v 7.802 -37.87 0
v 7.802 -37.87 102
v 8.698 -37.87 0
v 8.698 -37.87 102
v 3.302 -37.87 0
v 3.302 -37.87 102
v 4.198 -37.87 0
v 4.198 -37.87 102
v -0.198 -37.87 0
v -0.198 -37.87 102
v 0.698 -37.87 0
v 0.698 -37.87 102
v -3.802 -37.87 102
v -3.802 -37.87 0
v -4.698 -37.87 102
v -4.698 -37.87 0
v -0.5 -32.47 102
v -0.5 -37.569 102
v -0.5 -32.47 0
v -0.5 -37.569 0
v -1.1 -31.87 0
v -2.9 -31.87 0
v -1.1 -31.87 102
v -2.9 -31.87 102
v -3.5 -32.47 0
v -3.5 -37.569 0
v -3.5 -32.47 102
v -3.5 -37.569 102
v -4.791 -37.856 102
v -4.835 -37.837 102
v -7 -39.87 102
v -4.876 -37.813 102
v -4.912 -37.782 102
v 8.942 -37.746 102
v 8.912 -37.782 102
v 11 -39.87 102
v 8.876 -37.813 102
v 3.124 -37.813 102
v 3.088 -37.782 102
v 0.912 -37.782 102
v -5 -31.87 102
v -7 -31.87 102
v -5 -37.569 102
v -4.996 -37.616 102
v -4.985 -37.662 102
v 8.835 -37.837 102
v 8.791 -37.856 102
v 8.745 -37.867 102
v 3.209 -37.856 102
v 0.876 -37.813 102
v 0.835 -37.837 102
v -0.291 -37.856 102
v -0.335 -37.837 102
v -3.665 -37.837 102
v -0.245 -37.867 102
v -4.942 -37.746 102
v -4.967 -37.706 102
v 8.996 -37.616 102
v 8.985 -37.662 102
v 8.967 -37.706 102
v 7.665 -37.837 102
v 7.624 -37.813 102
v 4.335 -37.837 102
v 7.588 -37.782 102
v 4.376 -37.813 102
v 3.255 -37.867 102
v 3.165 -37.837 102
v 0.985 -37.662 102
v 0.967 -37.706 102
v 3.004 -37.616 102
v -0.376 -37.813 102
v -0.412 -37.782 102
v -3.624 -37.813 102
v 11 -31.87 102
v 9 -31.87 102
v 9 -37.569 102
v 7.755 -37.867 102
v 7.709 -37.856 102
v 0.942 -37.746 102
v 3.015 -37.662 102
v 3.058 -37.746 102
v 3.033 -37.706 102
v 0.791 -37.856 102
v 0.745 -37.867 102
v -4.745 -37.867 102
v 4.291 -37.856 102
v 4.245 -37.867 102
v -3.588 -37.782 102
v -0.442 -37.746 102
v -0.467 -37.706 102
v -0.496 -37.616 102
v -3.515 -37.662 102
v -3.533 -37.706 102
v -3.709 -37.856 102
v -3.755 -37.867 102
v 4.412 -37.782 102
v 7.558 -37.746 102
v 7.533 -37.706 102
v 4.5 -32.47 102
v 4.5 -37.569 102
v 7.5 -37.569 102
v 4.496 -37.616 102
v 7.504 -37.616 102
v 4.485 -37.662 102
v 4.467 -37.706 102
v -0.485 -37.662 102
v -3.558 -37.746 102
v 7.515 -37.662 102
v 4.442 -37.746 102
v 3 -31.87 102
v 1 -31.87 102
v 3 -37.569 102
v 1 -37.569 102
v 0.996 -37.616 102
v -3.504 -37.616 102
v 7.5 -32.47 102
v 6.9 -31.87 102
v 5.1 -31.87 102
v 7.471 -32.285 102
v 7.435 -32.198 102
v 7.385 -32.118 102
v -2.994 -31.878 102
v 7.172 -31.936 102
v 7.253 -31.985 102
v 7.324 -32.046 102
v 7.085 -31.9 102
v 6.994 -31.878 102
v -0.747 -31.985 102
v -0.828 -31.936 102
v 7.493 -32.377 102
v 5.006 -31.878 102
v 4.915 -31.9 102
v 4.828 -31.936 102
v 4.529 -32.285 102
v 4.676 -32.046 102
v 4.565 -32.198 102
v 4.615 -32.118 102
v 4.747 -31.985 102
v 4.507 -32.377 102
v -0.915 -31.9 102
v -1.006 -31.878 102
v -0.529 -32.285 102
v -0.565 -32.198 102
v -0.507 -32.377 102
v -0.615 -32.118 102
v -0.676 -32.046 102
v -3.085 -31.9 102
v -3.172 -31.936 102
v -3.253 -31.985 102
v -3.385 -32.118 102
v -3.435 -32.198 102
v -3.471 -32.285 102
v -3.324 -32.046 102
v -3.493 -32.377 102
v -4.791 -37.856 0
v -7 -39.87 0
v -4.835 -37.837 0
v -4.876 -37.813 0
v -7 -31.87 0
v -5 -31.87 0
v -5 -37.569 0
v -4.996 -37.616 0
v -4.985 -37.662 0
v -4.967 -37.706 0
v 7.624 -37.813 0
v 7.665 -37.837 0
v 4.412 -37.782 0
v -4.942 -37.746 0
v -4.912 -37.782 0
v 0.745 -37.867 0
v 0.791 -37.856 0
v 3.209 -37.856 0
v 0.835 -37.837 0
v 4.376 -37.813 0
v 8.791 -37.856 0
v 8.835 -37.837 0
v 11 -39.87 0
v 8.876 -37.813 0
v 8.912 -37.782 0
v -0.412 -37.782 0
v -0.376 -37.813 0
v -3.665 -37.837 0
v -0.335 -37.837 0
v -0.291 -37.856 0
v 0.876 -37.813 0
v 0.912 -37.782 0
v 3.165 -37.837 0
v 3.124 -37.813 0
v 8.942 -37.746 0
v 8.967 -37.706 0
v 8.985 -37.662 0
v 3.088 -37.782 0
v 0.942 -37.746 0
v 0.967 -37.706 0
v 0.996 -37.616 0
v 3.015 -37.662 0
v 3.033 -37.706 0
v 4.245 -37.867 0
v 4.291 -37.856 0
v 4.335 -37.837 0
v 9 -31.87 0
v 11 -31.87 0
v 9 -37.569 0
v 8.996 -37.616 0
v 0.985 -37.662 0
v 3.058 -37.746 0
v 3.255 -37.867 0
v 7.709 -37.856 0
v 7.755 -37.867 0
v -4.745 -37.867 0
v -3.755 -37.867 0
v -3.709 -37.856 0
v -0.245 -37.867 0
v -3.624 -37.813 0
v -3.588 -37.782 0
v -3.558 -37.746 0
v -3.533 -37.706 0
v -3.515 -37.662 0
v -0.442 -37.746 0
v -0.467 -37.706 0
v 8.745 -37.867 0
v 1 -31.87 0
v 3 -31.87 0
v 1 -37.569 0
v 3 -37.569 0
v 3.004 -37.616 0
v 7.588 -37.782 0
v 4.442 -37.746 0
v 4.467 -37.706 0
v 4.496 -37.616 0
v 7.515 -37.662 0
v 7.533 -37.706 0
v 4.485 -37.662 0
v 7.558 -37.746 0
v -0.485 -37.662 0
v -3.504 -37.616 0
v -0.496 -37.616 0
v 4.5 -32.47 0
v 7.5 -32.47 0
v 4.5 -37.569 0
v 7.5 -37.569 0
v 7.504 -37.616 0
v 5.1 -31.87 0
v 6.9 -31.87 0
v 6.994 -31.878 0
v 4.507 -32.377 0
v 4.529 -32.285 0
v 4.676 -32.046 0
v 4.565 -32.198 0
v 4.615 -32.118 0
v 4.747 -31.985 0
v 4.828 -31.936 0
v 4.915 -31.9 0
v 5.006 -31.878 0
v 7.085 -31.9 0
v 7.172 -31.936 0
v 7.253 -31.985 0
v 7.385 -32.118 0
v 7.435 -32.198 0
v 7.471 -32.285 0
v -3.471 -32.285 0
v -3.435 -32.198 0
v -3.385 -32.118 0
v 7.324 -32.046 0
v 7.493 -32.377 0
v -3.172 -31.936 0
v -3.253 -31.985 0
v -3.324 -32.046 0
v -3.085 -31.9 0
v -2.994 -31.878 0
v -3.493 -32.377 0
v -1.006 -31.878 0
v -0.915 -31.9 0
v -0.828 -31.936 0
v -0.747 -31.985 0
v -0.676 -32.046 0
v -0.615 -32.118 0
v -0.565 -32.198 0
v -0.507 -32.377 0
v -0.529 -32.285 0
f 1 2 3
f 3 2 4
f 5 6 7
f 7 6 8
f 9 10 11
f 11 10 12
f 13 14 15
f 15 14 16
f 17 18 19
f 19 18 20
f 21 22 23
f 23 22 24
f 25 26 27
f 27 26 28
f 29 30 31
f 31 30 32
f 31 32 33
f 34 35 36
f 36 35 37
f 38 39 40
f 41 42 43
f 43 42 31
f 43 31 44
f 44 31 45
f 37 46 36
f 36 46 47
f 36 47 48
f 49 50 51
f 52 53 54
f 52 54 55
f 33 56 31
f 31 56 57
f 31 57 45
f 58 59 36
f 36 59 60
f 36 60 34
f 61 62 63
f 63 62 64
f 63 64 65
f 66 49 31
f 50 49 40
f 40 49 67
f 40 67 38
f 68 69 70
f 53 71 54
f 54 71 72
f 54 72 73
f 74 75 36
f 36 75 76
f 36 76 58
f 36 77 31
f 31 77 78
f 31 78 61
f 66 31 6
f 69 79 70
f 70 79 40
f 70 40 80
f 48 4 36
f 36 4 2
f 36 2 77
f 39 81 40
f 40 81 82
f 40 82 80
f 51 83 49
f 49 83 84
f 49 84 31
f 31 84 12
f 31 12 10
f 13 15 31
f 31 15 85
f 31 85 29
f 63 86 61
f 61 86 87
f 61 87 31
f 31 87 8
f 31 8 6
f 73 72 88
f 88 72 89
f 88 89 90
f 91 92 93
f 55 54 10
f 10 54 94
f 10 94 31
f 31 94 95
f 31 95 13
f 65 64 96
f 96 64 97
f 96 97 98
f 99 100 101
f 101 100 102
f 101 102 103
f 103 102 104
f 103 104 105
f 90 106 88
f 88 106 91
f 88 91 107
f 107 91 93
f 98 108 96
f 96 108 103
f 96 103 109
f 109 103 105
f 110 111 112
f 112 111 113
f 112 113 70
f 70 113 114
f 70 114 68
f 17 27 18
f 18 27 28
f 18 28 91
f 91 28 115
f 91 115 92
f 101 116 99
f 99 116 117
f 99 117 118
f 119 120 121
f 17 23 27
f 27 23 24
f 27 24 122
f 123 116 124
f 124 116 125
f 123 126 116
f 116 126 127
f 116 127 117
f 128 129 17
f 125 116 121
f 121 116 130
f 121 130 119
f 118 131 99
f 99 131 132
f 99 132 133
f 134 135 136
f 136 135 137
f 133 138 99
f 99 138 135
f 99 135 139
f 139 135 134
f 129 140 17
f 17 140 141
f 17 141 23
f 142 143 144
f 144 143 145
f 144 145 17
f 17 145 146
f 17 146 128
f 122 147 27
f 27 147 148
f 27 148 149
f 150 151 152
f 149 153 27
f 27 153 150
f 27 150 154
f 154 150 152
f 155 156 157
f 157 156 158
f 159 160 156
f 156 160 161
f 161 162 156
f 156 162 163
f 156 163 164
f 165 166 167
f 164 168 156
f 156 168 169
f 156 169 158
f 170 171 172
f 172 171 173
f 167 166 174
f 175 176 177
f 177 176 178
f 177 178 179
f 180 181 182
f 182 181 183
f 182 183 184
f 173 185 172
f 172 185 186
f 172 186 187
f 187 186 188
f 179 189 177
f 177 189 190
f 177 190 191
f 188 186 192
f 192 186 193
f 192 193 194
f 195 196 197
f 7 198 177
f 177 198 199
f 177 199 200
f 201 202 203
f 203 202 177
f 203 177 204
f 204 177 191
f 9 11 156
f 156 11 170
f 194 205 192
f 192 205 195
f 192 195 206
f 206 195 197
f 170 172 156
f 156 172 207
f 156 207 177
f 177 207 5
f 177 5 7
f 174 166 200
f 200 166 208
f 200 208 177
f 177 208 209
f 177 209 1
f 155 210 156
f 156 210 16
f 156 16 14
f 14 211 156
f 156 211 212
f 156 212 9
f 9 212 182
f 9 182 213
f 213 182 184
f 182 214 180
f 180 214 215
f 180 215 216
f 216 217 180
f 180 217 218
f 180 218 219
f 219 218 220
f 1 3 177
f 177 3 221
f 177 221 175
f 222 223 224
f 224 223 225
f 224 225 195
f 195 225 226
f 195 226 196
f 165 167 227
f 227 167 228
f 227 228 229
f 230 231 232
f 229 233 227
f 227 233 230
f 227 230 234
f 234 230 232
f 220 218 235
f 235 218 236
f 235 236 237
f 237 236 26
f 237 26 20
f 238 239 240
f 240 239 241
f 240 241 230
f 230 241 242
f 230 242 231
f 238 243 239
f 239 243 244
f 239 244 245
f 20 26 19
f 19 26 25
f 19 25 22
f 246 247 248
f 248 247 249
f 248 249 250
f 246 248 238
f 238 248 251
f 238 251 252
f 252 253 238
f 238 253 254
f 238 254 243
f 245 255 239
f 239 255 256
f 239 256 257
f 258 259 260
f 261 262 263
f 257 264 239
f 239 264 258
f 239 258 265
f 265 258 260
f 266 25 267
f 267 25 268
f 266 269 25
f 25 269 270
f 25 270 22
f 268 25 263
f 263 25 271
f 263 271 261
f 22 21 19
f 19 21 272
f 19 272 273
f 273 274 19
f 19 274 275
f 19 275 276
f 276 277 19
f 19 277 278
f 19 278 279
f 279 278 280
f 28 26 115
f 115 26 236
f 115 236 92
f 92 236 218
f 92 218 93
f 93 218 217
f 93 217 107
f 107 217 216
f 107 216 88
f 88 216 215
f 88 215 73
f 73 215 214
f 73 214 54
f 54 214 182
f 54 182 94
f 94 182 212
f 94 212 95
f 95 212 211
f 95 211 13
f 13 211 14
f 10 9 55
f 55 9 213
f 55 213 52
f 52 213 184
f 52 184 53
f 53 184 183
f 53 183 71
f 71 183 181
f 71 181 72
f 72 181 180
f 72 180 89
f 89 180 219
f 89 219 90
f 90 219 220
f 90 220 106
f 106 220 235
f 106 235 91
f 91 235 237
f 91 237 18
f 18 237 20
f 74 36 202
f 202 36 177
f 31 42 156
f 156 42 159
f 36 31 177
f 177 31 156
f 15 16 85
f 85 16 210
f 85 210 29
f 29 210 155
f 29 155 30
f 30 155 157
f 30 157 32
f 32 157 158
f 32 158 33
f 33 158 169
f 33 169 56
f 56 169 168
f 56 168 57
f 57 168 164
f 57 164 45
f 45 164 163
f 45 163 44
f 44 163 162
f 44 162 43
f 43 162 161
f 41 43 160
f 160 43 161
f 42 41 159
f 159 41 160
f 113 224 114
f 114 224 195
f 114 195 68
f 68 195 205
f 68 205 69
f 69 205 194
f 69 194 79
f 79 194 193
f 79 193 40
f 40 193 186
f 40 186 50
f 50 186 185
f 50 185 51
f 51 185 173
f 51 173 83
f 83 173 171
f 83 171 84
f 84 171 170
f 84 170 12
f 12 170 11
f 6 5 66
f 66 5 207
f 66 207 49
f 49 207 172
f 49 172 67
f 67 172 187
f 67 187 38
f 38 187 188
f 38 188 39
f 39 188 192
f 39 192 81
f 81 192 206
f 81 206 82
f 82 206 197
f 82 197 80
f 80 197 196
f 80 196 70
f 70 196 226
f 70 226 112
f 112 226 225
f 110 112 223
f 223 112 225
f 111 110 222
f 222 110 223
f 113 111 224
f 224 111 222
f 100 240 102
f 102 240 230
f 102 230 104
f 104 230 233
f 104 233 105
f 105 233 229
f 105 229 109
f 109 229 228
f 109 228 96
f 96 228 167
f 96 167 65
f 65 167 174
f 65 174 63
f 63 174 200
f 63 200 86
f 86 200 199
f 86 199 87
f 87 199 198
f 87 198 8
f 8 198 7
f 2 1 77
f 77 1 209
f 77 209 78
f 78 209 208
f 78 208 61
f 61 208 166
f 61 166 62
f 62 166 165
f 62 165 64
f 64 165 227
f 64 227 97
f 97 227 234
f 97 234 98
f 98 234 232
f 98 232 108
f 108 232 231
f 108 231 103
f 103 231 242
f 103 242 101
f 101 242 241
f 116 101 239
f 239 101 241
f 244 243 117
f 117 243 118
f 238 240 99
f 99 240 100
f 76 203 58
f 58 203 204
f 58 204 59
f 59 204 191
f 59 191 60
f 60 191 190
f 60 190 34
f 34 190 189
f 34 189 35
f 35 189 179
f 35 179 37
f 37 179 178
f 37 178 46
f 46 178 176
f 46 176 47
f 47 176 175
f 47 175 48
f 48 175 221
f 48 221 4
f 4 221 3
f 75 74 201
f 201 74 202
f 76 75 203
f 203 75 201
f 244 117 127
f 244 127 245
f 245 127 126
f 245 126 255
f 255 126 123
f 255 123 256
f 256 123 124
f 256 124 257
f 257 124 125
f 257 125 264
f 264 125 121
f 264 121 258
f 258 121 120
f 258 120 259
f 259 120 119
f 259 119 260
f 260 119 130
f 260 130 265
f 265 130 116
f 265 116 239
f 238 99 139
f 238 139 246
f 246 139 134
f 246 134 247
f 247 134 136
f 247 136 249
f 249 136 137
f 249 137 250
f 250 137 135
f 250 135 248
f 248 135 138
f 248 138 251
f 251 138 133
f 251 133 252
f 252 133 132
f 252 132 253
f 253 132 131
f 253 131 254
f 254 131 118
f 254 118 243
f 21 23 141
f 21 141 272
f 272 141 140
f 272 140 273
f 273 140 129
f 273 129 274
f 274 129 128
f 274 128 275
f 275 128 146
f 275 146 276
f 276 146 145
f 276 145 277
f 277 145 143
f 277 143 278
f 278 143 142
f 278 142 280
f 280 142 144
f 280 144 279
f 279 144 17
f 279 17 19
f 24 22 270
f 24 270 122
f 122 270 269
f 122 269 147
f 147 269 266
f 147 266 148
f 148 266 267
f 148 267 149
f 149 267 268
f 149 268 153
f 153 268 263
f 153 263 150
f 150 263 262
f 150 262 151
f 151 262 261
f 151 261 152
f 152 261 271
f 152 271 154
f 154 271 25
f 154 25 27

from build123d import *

# Parameters (mm, degrees)
ESBO_O1_W                = 3
ESBO_O1_H                = 6
RESSALTO_EXTRUS_O1_DEPTH = 102
RESSALTO_EXTRUS_O3_DEPTH = 102
RESSALTO_EXTRUS_O4_DEPTH = 102
FILETE3_R                = 0.6


with BuildPart() as part:
    # Esboço1 → Ressalto-extrusão1 (new body)
    with BuildSketch(Plane.XY):
        with Locations((-2, -34.87037037)):
            Rectangle(ESBO_O1_W, ESBO_O1_H)
    extrude(amount=RESSALTO_EXTRUS_O1_DEPTH)

    # Esboço1<6> → Ressalto-extrusão3 (add)
    with BuildSketch(Plane.XY):
        with BuildLine():
            Line((-3.801867323, -37.87037037), (-3.5, -37.87037037))
            Line((-3.5, -37.87037037), (-3.5, -37.568503047))
            ThreePointArc((-3.5, -37.568503047), (-3.588414892, -37.781955478), (-3.801867323, -37.87037037))
        make_face()
        with BuildLine():
            ThreePointArc((-4.698132677, -37.87037037), (-4.911585108, -37.781955478), (-5, -37.568503047))
            Line((-5, -37.568503047), (-5, -31.87037037))
            Line((-5, -31.87037037), (-7, -31.87037037))
            Line((-7, -31.87037037), (-7, -37.87037037))
            Line((-7, -37.87037037), (-4.698132677, -37.87037037))
        make_face()
        with BuildLine():
            Line((-0.5, -37.568503047), (-0.5, -37.87037037))
            Line((-0.5, -37.87037037), (-0.198132677, -37.87037037))
            ThreePointArc((-0.198132677, -37.87037037), (-0.411585108, -37.781955478), (-0.5, -37.568503047))
        make_face()
        with BuildLine():
            ThreePointArc((1, -37.568503047), (0.911585108, -37.781955478), (0.698132677, -37.87037037))
            Line((0.698132677, -37.87037037), (3.301867323, -37.87037037))
            ThreePointArc((3.301867323, -37.87037037), (3.088414892, -37.781955478), (3, -37.568503047))
            Line((3, -37.568503047), (3, -31.87037037))
            Line((3, -31.87037037), (1, -31.87037037))
            Line((1, -31.87037037), (1, -37.568503047))
        make_face()
        with BuildLine():
            Line((11, -37.87037037), (11, -31.87037037))
            Line((11, -31.87037037), (9, -31.87037037))
            Line((9, -31.87037037), (9, -37.568503047))
            ThreePointArc((9, -37.568503047), (8.911585108, -37.781955478), (8.698132677, -37.87037037))
            Line((8.698132677, -37.87037037), (11, -37.87037037))
        make_face()
        with BuildLine():
            ThreePointArc((4.5, -37.568503047), (4.411585108, -37.781955478), (4.198132677, -37.87037037))
            Line((4.198132677, -37.87037037), (7.801867323, -37.87037037))
            ThreePointArc((7.801867323, -37.87037037), (7.588414892, -37.781955478), (7.5, -37.568503047))
            Line((7.5, -37.568503047), (7.5, -31.87037037))
            Line((7.5, -31.87037037), (4.5, -31.87037037))
            Line((4.5, -31.87037037), (4.5, -37.568503047))
        make_face()
    extrude(amount=RESSALTO_EXTRUS_O3_DEPTH)


with BuildPart() as ressalto_extrus_o3_piece_1:
    # of the separate pieces the step leaves, piece 1, a body of its own (ressalto_extrus_o3_pieces)
    add(part.part.solids().sort_by_distance((-0.5, -37.568503047, 0))[0])



with BuildPart() as ressalto_extrus_o3_piece_2:
    # of the separate pieces the step leaves, piece 2, a body of its own (ressalto_extrus_o3_pieces)
    add(part.part.solids().sort_by_distance((4.5, -37.568503047, 0))[0])


with BuildPart() as ressalto_extrus_o3_piece_3:
    # of the separate pieces the step leaves, piece 3, a body of its own (ressalto_extrus_o3_pieces)
    add(part.part.solids().sort_by_distance((1, -37.568503047, 0))[0])


with BuildPart() as ressalto_extrus_o3_piece_4:
    # of the separate pieces the step leaves, piece 4, a body of its own (ressalto_extrus_o3_pieces)
    add(part.part.solids().sort_by_distance((11, -37.87037037, 0))[0])


with BuildPart() as ressalto_extrus_o3_piece_5:
    # of the separate pieces the step leaves, piece 5, a body of its own (ressalto_extrus_o3_pieces)
    add(part.part.solids().sort_by_distance((-4.698132677, -37.87037037, 0))[0])


with BuildPart() as ressalto_extrus_o3_piece_1_1:
    add(ressalto_extrus_o3_piece_1.part)

    add(ressalto_extrus_o3_piece_2.part)  # Ressalto-extrusão4 merges Ressalto-extrusão3 piece 2

    add(ressalto_extrus_o3_piece_3.part)  # Ressalto-extrusão4 merges Ressalto-extrusão3 piece 3

    add(ressalto_extrus_o3_piece_4.part)  # Ressalto-extrusão4 merges Ressalto-extrusão3 piece 4

    add(ressalto_extrus_o3_piece_5.part)  # Ressalto-extrusão4 merges Ressalto-extrusão3 piece 5
    # Esboço1<7> → Ressalto-extrusão4 (add)
    with BuildSketch(Plane.XY):
        Polygon((-2, -37.87037037), (-3.5, -37.87037037), (-3.801867323, -37.87037037), (-4.698132677, -37.87037037), (-5, -37.87037037), (-7, -37.87037037), (-7, -39.87037037), (11, -39.87037037), (11, -37.87037037), (9, -37.87037037), (8.698132677, -37.87037037), (7.801867323, -37.87037037), (7.5, -37.87037037), (6, -37.87037037), (4.5, -37.87037037), (4.198132677, -37.87037037), (3.301867323, -37.87037037), (3, -37.87037037), (1, -37.87037037), (0.698132677, -37.87037037), (-0.198132677, -37.87037037), (-0.5, -37.87037037), align=None)
    extrude(amount=RESSALTO_EXTRUS_O4_DEPTH)

    # Filete3
    filete3_edges = [ressalto_extrus_o3_piece_1_1.edges().sort_by_distance(p)[0] for p in [
        (7.5, -31.87037037, 51),
        (4.5, -31.87037037, 51),
        (-0.5, -31.87037037, 51),
        (-3.5, -31.87037037, 51),
    ]]
    fillet(filete3_edges, radius=FILETE3_R)


solid = ressalto_extrus_o3_piece_1_1.part
